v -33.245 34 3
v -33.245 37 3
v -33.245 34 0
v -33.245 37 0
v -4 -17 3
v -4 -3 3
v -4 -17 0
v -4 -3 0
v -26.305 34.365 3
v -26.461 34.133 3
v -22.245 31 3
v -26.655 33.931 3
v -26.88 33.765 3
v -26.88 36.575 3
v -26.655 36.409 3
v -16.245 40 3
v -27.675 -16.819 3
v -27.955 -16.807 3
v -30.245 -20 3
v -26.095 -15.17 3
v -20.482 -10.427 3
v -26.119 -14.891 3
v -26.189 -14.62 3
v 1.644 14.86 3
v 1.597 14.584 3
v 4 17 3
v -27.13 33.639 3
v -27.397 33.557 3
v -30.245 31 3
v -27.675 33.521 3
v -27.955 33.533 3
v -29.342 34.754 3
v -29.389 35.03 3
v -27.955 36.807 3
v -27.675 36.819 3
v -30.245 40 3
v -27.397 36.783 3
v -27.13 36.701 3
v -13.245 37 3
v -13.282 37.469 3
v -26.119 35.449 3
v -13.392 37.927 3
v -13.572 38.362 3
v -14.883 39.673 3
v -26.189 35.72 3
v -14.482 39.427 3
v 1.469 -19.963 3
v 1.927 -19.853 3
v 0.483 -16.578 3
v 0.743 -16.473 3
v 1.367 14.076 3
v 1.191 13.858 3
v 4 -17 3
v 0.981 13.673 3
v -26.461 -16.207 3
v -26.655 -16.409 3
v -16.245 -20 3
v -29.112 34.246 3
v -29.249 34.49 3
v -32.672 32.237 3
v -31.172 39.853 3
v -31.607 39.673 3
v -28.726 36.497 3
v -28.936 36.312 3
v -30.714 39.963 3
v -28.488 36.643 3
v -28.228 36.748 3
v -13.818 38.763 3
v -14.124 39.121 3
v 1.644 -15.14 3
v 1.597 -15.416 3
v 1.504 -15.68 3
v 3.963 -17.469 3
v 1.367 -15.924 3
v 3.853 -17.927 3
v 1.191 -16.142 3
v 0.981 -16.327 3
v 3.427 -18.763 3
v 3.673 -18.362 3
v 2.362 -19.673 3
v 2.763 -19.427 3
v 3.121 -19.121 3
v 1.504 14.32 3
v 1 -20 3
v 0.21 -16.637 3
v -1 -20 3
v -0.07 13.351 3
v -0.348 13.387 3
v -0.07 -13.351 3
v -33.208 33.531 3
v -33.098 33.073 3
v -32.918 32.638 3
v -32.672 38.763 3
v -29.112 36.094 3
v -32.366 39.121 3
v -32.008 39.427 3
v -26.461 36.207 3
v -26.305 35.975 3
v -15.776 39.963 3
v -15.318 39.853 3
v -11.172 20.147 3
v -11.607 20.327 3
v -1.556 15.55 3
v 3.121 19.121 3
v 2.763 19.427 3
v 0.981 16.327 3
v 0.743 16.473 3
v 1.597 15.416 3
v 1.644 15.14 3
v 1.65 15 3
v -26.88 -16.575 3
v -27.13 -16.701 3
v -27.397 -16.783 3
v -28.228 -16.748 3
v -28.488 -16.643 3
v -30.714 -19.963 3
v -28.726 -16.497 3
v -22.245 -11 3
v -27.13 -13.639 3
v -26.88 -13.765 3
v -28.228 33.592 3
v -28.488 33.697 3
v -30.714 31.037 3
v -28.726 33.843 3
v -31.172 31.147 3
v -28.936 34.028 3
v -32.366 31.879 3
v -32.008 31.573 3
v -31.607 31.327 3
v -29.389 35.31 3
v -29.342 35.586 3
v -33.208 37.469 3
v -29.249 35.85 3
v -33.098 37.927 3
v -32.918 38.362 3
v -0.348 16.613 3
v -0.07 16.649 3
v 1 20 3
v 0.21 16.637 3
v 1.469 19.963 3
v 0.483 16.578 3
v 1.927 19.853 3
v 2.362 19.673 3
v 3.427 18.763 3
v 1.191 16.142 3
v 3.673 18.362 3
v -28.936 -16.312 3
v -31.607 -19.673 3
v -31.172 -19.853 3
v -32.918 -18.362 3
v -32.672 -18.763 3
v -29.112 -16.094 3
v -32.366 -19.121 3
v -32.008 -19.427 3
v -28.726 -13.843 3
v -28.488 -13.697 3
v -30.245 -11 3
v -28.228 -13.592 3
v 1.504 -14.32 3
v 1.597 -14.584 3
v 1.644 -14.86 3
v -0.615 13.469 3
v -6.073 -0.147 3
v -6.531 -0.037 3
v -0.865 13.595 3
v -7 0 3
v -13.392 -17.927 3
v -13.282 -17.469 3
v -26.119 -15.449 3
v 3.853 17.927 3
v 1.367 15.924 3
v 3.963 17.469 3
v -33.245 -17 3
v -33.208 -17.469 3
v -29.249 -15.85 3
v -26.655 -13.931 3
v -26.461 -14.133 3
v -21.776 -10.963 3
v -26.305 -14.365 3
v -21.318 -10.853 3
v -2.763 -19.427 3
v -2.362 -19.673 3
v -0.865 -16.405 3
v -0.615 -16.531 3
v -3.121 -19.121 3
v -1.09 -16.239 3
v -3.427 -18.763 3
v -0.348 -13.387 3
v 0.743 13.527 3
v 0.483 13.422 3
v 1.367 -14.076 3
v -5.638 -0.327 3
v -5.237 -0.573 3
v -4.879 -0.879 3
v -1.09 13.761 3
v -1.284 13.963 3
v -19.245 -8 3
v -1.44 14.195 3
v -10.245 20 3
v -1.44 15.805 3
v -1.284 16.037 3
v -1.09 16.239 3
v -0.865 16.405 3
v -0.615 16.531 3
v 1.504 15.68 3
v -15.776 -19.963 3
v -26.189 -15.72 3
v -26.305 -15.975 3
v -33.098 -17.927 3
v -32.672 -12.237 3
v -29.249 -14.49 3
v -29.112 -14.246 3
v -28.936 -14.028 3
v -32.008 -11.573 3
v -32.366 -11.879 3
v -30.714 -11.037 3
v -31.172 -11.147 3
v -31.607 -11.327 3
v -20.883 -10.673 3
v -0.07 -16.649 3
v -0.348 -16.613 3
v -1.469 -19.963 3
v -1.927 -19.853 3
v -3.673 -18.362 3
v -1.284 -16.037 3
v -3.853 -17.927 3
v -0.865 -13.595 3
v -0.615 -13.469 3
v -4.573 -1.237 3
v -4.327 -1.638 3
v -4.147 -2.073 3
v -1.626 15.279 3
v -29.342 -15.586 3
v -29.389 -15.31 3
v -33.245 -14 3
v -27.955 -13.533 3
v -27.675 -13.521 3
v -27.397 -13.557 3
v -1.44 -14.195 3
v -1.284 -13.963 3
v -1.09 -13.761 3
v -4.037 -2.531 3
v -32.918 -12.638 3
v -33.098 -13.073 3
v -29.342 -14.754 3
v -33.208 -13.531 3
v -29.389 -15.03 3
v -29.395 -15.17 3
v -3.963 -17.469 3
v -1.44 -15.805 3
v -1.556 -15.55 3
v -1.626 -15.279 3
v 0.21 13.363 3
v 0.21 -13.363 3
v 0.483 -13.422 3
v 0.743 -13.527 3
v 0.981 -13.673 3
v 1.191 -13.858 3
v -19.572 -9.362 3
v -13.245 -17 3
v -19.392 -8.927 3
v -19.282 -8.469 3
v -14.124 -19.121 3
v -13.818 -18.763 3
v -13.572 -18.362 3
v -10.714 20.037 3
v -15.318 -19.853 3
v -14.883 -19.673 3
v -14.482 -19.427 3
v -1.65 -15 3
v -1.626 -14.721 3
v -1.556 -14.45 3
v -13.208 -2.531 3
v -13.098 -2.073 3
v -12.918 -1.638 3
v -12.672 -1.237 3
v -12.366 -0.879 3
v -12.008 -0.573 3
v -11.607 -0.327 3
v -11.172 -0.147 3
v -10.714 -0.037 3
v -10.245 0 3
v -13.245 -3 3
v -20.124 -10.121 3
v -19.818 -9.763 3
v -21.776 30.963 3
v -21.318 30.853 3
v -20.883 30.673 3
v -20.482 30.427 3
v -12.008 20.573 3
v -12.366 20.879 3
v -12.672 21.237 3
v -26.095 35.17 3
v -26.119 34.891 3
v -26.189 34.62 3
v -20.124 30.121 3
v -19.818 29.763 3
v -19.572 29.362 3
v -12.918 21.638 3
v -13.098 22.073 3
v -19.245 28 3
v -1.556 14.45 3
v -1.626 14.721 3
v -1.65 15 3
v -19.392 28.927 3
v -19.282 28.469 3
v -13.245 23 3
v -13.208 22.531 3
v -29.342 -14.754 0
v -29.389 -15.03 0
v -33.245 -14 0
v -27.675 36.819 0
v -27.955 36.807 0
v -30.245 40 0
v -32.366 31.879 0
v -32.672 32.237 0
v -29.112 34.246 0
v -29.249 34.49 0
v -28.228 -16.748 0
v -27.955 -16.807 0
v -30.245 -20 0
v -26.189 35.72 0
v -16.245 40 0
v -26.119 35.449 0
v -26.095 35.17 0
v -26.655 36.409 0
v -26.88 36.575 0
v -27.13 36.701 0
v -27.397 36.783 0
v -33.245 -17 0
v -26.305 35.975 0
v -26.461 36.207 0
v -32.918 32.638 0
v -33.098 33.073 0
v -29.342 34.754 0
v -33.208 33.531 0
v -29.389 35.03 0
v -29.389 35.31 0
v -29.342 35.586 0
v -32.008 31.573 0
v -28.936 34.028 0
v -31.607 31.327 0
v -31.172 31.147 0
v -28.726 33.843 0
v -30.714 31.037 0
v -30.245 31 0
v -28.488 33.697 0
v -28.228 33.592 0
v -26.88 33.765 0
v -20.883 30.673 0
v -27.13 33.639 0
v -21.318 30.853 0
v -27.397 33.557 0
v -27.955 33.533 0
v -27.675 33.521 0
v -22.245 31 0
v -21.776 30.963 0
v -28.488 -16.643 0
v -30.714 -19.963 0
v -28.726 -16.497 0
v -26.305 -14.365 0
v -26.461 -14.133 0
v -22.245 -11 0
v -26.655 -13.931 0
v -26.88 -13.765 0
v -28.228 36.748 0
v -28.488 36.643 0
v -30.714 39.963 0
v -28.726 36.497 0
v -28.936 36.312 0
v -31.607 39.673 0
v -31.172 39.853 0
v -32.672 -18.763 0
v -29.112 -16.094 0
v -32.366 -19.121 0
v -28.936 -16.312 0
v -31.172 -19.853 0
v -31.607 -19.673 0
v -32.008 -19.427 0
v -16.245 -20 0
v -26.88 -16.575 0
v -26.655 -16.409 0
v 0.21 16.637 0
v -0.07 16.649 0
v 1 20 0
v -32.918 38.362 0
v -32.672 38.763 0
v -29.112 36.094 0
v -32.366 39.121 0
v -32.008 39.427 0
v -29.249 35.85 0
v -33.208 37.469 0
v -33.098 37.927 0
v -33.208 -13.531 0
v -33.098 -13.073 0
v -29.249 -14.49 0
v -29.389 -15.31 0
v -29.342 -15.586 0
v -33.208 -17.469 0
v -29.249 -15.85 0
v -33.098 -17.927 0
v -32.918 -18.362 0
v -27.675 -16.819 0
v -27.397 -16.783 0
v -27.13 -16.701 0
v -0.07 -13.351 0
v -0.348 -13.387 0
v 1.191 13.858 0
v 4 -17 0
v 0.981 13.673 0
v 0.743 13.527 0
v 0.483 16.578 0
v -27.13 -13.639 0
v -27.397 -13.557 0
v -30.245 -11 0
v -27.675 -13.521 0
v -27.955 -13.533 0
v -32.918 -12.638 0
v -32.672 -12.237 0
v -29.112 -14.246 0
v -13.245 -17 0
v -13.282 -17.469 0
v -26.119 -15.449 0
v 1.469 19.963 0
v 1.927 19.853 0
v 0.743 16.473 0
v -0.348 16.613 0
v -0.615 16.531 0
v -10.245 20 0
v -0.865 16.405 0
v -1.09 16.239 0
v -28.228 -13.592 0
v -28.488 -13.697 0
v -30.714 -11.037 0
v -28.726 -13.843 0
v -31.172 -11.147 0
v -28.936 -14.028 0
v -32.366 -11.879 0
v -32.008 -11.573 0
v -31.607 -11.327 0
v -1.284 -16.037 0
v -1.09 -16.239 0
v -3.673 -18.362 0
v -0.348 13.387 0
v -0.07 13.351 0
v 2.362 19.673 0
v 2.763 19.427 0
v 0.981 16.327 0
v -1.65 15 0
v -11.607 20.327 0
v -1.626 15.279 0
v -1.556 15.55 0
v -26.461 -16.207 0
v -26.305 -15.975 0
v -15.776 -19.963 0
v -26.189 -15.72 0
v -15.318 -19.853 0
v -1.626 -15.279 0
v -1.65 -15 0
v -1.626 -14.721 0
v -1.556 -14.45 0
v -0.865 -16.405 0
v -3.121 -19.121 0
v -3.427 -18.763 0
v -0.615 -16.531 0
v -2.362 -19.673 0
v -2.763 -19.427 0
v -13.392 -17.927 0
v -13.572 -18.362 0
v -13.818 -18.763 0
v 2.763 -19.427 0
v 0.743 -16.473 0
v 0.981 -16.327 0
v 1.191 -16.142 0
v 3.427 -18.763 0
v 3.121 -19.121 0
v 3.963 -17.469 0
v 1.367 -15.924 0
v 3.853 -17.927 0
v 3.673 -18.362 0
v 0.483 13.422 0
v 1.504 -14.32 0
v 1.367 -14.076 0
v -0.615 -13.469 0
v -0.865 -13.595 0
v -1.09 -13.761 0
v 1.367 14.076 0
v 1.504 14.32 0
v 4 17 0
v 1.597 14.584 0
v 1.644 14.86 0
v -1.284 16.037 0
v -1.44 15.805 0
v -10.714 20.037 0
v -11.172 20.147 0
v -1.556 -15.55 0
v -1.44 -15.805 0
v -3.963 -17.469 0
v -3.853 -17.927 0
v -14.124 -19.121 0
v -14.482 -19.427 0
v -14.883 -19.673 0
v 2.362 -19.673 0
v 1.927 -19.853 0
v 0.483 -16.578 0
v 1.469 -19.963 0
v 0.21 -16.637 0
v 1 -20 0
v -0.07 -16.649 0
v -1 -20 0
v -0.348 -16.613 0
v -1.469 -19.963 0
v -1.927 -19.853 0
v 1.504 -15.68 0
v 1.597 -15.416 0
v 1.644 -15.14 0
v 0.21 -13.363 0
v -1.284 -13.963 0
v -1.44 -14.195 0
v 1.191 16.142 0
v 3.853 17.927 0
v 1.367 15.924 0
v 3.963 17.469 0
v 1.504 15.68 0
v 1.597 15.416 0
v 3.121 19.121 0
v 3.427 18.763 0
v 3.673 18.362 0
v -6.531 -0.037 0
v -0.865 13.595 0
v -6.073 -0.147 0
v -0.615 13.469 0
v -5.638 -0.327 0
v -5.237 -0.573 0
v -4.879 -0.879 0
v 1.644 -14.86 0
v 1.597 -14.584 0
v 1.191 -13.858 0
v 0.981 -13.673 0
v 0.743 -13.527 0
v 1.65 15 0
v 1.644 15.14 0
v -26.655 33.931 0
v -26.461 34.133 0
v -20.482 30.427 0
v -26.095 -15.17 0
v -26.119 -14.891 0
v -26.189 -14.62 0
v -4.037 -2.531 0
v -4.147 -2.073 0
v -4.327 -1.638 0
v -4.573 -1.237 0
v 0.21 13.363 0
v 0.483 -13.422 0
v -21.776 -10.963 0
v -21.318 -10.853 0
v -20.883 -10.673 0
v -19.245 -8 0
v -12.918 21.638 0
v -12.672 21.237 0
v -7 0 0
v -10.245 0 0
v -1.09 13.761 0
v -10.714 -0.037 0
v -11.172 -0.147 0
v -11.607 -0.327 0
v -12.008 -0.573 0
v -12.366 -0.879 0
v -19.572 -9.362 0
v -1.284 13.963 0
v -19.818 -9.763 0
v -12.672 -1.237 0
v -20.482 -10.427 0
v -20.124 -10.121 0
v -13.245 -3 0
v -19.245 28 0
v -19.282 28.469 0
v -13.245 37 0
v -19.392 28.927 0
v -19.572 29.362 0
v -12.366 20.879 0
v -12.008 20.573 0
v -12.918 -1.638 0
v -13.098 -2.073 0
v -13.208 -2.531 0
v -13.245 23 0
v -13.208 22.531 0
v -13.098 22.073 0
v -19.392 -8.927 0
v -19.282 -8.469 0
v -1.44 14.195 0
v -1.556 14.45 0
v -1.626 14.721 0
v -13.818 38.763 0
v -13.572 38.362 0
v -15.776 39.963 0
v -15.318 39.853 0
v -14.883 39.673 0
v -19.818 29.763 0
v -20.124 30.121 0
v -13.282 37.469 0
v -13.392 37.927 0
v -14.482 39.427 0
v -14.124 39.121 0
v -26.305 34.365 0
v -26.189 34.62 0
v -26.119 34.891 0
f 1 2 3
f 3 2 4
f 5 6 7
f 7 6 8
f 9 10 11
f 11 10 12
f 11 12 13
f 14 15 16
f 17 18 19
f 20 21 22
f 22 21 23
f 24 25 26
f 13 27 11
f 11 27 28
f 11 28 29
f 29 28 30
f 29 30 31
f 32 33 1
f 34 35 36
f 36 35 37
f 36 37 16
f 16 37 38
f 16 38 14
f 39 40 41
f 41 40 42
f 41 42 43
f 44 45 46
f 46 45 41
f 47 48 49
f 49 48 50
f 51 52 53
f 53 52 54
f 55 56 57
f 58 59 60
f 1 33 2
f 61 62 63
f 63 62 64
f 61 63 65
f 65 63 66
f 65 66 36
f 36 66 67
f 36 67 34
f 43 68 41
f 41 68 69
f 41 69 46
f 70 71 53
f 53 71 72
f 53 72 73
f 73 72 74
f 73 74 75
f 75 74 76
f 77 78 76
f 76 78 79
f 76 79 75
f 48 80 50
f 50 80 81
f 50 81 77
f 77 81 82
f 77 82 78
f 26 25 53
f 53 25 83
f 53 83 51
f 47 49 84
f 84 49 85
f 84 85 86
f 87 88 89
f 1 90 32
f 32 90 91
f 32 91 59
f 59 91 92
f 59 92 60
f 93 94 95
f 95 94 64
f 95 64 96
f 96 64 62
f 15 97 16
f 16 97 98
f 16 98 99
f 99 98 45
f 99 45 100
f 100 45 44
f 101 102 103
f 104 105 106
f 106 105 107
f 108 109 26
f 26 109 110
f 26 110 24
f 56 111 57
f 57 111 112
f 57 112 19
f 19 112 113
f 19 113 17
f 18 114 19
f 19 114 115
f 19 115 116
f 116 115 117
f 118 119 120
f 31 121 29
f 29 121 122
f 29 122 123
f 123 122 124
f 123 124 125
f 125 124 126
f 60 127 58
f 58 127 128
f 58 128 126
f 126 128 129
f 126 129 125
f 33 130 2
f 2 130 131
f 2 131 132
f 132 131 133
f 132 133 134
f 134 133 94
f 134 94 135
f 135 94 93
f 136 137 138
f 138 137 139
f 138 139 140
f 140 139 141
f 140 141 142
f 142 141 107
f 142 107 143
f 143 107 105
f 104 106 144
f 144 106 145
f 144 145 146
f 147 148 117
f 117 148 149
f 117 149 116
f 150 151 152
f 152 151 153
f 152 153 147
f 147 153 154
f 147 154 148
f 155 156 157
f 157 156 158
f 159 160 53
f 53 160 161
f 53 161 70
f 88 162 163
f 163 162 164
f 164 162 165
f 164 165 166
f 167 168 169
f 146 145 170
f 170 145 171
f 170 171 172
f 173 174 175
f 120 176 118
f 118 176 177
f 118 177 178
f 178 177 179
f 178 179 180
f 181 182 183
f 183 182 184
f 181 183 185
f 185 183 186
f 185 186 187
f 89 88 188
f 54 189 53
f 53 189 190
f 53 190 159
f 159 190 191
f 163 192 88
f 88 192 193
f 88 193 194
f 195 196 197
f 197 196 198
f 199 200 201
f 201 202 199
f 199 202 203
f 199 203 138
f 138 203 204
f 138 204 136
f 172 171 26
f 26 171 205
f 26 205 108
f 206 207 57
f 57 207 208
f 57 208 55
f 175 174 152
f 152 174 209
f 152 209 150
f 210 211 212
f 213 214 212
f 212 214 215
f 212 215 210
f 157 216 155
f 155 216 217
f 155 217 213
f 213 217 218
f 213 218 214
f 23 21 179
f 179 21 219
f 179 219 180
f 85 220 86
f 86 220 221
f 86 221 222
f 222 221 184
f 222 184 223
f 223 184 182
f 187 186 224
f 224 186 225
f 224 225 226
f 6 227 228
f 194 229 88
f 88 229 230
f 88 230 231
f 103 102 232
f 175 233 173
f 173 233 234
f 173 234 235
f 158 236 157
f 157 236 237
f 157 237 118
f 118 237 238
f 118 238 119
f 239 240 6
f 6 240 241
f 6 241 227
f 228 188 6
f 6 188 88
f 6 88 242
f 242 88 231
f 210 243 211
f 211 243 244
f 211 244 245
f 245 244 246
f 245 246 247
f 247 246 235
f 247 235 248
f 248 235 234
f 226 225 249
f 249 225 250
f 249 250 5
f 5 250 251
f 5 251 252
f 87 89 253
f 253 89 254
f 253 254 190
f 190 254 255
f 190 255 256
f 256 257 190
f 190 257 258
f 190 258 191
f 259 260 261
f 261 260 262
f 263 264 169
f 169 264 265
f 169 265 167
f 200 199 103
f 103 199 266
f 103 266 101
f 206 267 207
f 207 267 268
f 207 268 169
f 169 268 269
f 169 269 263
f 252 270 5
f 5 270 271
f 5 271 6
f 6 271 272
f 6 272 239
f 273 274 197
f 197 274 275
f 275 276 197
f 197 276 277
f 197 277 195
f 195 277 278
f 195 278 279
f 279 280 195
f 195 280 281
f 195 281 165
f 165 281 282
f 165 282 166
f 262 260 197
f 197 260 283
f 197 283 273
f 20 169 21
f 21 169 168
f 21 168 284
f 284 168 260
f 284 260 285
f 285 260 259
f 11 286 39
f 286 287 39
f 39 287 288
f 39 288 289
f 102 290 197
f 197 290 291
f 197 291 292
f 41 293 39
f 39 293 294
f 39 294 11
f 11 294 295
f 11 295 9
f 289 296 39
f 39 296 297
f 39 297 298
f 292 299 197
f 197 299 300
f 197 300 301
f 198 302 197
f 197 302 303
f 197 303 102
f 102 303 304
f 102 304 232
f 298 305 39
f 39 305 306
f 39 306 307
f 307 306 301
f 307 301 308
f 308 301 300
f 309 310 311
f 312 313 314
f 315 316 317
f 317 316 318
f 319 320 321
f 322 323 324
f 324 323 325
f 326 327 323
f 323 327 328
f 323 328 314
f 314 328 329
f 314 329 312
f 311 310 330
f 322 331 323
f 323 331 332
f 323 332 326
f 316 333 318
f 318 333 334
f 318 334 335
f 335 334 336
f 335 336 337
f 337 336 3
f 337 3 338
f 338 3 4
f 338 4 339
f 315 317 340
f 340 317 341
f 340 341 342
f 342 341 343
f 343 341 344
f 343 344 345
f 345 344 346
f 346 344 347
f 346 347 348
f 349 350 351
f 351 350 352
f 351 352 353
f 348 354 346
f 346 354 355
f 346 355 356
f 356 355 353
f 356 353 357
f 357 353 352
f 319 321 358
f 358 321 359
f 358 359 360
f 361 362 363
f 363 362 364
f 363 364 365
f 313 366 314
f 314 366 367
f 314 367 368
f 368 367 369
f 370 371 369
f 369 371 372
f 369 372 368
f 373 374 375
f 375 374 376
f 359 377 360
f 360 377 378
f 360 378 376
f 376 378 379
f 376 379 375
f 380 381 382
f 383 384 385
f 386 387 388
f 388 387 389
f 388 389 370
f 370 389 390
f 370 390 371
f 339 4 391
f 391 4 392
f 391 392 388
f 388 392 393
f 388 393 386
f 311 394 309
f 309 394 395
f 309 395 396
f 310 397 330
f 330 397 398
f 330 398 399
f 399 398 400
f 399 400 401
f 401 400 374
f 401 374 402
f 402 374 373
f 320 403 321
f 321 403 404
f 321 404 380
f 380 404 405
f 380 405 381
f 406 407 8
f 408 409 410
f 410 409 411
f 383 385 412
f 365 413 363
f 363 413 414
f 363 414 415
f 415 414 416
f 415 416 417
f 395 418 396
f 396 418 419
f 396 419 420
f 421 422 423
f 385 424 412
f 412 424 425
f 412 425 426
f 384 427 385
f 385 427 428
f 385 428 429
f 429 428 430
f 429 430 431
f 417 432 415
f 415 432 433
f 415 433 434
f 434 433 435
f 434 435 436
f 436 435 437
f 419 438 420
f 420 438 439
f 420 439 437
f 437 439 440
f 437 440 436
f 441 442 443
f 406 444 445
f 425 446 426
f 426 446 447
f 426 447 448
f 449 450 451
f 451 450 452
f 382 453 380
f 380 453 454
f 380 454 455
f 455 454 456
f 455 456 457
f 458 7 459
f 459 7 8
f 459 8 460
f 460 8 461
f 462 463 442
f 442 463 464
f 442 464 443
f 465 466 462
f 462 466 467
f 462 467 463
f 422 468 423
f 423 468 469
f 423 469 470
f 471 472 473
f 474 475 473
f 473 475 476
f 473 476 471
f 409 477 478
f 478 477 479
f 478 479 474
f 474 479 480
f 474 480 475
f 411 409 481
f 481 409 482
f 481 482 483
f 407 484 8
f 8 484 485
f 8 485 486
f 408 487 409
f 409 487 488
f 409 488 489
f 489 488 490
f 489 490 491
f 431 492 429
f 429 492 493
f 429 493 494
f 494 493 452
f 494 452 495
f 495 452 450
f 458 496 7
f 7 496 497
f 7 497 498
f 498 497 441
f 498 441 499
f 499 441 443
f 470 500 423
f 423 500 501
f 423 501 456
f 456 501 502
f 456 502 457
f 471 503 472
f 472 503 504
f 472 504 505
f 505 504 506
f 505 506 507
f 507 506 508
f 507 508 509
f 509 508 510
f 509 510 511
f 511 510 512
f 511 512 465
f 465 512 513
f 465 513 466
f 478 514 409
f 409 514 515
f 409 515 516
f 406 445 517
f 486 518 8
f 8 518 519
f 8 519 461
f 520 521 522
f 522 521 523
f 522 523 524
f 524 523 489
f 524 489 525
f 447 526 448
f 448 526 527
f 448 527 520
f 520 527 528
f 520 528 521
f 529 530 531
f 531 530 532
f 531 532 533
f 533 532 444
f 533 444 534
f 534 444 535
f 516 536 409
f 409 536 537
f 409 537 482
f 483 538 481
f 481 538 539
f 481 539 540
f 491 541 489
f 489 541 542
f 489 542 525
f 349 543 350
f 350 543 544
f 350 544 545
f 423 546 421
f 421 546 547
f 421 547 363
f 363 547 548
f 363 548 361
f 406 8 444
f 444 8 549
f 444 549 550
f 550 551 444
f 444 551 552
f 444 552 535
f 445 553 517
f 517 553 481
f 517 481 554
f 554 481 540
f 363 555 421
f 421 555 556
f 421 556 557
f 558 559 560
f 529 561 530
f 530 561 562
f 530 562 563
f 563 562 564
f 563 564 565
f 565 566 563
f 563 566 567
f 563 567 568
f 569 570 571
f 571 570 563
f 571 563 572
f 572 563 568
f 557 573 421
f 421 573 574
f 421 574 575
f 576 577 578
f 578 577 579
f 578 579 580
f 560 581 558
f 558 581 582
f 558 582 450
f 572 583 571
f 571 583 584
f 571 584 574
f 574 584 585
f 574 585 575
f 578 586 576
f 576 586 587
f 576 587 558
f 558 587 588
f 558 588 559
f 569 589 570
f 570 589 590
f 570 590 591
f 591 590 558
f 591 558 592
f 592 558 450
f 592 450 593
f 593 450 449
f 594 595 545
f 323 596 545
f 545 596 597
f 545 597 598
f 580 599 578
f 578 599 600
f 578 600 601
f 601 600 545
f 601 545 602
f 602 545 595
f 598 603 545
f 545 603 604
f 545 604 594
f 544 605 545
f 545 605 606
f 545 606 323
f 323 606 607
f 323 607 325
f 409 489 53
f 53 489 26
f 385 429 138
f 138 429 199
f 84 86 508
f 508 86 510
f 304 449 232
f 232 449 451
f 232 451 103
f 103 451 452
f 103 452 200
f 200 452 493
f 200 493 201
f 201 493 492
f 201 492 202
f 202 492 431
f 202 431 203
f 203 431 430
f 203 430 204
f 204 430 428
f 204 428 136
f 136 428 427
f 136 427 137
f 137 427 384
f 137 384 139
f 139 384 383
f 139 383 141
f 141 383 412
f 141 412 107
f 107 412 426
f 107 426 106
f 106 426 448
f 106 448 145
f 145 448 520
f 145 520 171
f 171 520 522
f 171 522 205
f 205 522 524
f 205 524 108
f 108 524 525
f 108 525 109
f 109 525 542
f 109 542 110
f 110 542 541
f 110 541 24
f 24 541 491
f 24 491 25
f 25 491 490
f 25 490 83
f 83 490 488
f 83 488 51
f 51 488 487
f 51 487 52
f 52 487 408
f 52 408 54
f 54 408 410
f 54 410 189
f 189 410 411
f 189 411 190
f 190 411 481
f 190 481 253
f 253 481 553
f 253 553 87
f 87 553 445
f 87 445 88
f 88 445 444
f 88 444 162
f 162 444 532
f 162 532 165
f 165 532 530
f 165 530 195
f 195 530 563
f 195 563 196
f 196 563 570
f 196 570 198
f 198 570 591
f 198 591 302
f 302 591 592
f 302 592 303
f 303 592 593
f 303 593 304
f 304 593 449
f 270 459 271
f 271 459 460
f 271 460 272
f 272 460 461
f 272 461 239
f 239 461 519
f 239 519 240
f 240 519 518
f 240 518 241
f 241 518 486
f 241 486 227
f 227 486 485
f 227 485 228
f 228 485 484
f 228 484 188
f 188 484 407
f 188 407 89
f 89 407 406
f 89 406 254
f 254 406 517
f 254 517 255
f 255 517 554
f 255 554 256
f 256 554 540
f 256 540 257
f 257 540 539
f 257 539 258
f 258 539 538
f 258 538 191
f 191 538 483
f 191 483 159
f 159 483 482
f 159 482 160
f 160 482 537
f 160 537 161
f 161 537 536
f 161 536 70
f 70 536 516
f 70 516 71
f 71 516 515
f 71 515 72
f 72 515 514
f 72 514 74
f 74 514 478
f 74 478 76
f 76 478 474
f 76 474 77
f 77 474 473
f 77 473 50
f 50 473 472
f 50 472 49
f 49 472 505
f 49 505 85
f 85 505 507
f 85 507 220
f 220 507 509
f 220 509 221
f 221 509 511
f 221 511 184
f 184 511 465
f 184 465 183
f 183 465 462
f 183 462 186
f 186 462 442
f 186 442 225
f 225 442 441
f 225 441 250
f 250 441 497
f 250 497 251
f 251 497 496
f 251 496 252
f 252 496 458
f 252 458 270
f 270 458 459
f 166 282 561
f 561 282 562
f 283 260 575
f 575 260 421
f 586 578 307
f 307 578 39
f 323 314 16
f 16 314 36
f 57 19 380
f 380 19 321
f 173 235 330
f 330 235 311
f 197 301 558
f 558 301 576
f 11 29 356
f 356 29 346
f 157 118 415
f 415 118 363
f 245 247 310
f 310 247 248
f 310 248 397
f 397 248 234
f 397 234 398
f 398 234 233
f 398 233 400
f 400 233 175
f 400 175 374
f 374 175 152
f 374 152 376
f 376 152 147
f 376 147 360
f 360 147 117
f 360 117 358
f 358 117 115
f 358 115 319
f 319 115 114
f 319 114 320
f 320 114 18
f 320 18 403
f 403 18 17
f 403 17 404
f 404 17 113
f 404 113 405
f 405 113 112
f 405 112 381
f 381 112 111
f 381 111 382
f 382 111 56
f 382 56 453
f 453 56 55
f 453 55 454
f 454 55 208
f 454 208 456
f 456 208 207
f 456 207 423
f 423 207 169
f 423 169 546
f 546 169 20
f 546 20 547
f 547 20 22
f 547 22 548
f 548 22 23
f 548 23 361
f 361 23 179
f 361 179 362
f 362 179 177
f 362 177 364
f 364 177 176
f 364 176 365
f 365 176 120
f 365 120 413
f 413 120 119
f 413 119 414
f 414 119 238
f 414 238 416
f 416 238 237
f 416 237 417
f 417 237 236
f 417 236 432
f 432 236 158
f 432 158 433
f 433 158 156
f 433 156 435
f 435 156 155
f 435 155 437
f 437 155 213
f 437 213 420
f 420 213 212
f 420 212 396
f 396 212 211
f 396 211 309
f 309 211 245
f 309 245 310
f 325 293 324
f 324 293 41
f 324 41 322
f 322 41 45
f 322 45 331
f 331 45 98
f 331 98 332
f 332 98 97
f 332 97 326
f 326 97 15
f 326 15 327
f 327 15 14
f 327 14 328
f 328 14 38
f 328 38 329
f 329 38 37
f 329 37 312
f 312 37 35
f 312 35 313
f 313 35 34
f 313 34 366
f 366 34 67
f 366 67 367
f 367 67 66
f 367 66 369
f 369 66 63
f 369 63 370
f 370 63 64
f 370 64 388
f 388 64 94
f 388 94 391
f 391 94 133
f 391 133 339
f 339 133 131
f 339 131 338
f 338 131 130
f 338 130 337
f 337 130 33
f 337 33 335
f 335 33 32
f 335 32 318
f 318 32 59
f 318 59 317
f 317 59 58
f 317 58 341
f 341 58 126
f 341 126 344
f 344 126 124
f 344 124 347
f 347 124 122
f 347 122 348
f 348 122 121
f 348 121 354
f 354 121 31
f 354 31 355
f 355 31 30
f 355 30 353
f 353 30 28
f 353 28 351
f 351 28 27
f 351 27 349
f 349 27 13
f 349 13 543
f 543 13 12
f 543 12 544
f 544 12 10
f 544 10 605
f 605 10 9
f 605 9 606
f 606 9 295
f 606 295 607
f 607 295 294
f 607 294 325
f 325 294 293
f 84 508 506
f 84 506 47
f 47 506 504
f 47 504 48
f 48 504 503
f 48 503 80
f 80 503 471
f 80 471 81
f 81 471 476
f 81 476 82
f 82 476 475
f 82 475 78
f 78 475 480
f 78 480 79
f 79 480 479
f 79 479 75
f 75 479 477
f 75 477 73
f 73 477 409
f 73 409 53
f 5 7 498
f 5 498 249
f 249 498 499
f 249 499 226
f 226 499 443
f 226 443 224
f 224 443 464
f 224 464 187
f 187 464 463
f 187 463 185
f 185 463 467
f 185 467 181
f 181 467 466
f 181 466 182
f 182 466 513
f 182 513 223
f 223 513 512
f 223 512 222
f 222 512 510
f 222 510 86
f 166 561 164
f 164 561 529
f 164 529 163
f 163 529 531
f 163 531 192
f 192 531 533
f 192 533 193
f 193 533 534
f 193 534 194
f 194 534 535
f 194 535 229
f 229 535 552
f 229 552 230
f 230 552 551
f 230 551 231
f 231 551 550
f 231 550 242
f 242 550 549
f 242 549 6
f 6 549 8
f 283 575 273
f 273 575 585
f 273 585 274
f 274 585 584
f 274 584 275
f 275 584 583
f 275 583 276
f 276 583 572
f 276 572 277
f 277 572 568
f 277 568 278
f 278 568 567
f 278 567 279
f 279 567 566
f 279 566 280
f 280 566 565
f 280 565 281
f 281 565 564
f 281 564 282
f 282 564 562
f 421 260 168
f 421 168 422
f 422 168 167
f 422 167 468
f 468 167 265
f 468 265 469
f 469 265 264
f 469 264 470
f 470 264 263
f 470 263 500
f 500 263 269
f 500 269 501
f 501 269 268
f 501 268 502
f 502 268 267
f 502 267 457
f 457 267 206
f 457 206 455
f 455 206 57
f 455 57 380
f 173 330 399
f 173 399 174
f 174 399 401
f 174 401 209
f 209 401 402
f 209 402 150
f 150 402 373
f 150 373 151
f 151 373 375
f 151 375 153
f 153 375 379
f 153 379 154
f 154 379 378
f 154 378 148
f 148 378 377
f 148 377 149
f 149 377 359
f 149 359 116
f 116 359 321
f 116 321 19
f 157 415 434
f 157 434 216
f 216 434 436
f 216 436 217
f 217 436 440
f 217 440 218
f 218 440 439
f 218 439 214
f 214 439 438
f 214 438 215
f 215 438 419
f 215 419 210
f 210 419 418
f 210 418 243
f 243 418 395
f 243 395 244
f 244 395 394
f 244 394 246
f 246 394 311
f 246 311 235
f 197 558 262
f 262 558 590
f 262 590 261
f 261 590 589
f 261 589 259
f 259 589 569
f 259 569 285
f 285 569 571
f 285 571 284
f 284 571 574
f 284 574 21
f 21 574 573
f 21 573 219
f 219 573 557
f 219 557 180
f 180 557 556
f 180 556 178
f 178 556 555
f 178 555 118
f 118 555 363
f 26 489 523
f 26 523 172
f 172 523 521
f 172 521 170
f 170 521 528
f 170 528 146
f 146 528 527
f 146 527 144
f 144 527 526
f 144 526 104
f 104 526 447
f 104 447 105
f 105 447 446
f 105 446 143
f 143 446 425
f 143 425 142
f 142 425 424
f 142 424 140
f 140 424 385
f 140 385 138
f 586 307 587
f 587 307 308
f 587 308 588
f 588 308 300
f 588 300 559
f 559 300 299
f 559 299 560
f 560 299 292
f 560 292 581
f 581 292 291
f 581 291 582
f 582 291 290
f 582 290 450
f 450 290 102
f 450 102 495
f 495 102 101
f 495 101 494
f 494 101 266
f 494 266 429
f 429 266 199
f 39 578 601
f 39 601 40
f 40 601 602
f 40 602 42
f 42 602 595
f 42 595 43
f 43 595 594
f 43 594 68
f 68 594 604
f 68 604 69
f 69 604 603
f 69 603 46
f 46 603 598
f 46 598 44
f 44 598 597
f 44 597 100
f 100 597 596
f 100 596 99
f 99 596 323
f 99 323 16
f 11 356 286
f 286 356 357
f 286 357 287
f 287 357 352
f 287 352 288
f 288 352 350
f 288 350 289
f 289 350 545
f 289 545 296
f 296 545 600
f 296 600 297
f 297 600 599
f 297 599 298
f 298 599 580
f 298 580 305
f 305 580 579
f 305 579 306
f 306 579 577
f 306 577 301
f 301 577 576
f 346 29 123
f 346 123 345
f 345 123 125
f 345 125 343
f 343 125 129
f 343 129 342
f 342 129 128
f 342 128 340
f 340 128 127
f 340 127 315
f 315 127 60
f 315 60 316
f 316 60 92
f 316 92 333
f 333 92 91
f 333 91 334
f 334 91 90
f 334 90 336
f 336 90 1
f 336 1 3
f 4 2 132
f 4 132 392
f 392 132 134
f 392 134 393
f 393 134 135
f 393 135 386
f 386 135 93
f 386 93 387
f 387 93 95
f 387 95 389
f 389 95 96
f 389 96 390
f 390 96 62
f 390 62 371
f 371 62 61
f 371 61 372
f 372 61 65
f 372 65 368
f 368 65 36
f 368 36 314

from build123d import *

# Parameters (mm, degrees)
SKETCH1_W           = 8
SKETCH1_H           = 40
SKETCH1_R           = 1.65
BOSS_EXTRUDE1_DEPTH = 3
SKETCH9_W           = 3
SKETCH9_H           = 20
BOSS_EXTRUDE6_DEPTH = 9.245
SKETCH10_W          = 3
SKETCH10_H          = 60
BOSS_EXTRUDE7_DEPTH = 20
SKETCH11_W          = 14
SKETCH11_H          = 42
CUT_EXTRUDE1_DEPTH  = 10
SKETCH12_R          = 1.65
CUT_EXTRUDE2_DEPTH  = 10
FILLET7_R           = 3


with BuildPart() as part:
    # Sketch1 → Boss-Extrude1 (new body)
    with BuildSketch(Plane.XY):
        Rectangle(SKETCH1_W, SKETCH1_H)
        with Locations((0, 15)):
            Circle(SKETCH1_R, mode=Mode.SUBTRACT)
        with Locations(Location((0, -15, 0), (0, 0, 180))):
            Circle(SKETCH1_R, mode=Mode.SUBTRACT)
    extrude(amount=BOSS_EXTRUDE1_DEPTH)

    # Sketch9 → Boss-Extrude6 (add)
    with BuildSketch(Plane.ZY.offset(4)):
        with Locations((1.5, 10)):
            Rectangle(SKETCH9_W, SKETCH9_H)
    extrude(amount=BOSS_EXTRUDE6_DEPTH)

    # Sketch10 → Boss-Extrude7 (add)
    with BuildSketch(Plane.ZY.offset(13.245)):
        with Locations((1.5, 10)):
            Rectangle(SKETCH10_W, SKETCH10_H)
    extrude(amount=BOSS_EXTRUDE7_DEPTH)

    # Sketch11 → Cut-Extrude1 (cut)
    with BuildSketch(Plane.XY.offset(3)):
        with Locations((-26.245, 10)):
            Rectangle(SKETCH11_W, SKETCH11_H)
    extrude(amount=-CUT_EXTRUDE1_DEPTH, mode=Mode.SUBTRACT)

    # Sketch12 → Cut-Extrude2 (cut)
    with BuildSketch(Plane.XY.offset(3)):
        with Locations((-27.745, 35.17)):
            Circle(SKETCH12_R)
        with Locations((-27.745, -15.17)):
            Circle(SKETCH12_R)
    extrude(amount=-CUT_EXTRUDE2_DEPTH, mode=Mode.SUBTRACT)

    # Fillet7
    fillet7_edges = [part.edges().sort_by_distance(p)[0] for p in [
        (-4, 0, 1.5),
        (-13.245, 0, 1.5),
        (-13.245, 20, 1.5),
        (-13.245, 40, 1.5),
        (-13.245, -20, 1.5),
        (-33.245, 40, 1.5),
        (-33.245, -20, 1.5),
        (-33.245, -11, 1.5),
        (-33.245, 31, 1.5),
        (-19.245, 31, 1.5),
        (-19.245, -11, 1.5),
        (4, -20, 1.5),
        (-4, -20, 1.5),
        (4, 20, 1.5),
    ]]
    fillet(fillet7_edges, radius=FILLET7_R)


solid = part.part
